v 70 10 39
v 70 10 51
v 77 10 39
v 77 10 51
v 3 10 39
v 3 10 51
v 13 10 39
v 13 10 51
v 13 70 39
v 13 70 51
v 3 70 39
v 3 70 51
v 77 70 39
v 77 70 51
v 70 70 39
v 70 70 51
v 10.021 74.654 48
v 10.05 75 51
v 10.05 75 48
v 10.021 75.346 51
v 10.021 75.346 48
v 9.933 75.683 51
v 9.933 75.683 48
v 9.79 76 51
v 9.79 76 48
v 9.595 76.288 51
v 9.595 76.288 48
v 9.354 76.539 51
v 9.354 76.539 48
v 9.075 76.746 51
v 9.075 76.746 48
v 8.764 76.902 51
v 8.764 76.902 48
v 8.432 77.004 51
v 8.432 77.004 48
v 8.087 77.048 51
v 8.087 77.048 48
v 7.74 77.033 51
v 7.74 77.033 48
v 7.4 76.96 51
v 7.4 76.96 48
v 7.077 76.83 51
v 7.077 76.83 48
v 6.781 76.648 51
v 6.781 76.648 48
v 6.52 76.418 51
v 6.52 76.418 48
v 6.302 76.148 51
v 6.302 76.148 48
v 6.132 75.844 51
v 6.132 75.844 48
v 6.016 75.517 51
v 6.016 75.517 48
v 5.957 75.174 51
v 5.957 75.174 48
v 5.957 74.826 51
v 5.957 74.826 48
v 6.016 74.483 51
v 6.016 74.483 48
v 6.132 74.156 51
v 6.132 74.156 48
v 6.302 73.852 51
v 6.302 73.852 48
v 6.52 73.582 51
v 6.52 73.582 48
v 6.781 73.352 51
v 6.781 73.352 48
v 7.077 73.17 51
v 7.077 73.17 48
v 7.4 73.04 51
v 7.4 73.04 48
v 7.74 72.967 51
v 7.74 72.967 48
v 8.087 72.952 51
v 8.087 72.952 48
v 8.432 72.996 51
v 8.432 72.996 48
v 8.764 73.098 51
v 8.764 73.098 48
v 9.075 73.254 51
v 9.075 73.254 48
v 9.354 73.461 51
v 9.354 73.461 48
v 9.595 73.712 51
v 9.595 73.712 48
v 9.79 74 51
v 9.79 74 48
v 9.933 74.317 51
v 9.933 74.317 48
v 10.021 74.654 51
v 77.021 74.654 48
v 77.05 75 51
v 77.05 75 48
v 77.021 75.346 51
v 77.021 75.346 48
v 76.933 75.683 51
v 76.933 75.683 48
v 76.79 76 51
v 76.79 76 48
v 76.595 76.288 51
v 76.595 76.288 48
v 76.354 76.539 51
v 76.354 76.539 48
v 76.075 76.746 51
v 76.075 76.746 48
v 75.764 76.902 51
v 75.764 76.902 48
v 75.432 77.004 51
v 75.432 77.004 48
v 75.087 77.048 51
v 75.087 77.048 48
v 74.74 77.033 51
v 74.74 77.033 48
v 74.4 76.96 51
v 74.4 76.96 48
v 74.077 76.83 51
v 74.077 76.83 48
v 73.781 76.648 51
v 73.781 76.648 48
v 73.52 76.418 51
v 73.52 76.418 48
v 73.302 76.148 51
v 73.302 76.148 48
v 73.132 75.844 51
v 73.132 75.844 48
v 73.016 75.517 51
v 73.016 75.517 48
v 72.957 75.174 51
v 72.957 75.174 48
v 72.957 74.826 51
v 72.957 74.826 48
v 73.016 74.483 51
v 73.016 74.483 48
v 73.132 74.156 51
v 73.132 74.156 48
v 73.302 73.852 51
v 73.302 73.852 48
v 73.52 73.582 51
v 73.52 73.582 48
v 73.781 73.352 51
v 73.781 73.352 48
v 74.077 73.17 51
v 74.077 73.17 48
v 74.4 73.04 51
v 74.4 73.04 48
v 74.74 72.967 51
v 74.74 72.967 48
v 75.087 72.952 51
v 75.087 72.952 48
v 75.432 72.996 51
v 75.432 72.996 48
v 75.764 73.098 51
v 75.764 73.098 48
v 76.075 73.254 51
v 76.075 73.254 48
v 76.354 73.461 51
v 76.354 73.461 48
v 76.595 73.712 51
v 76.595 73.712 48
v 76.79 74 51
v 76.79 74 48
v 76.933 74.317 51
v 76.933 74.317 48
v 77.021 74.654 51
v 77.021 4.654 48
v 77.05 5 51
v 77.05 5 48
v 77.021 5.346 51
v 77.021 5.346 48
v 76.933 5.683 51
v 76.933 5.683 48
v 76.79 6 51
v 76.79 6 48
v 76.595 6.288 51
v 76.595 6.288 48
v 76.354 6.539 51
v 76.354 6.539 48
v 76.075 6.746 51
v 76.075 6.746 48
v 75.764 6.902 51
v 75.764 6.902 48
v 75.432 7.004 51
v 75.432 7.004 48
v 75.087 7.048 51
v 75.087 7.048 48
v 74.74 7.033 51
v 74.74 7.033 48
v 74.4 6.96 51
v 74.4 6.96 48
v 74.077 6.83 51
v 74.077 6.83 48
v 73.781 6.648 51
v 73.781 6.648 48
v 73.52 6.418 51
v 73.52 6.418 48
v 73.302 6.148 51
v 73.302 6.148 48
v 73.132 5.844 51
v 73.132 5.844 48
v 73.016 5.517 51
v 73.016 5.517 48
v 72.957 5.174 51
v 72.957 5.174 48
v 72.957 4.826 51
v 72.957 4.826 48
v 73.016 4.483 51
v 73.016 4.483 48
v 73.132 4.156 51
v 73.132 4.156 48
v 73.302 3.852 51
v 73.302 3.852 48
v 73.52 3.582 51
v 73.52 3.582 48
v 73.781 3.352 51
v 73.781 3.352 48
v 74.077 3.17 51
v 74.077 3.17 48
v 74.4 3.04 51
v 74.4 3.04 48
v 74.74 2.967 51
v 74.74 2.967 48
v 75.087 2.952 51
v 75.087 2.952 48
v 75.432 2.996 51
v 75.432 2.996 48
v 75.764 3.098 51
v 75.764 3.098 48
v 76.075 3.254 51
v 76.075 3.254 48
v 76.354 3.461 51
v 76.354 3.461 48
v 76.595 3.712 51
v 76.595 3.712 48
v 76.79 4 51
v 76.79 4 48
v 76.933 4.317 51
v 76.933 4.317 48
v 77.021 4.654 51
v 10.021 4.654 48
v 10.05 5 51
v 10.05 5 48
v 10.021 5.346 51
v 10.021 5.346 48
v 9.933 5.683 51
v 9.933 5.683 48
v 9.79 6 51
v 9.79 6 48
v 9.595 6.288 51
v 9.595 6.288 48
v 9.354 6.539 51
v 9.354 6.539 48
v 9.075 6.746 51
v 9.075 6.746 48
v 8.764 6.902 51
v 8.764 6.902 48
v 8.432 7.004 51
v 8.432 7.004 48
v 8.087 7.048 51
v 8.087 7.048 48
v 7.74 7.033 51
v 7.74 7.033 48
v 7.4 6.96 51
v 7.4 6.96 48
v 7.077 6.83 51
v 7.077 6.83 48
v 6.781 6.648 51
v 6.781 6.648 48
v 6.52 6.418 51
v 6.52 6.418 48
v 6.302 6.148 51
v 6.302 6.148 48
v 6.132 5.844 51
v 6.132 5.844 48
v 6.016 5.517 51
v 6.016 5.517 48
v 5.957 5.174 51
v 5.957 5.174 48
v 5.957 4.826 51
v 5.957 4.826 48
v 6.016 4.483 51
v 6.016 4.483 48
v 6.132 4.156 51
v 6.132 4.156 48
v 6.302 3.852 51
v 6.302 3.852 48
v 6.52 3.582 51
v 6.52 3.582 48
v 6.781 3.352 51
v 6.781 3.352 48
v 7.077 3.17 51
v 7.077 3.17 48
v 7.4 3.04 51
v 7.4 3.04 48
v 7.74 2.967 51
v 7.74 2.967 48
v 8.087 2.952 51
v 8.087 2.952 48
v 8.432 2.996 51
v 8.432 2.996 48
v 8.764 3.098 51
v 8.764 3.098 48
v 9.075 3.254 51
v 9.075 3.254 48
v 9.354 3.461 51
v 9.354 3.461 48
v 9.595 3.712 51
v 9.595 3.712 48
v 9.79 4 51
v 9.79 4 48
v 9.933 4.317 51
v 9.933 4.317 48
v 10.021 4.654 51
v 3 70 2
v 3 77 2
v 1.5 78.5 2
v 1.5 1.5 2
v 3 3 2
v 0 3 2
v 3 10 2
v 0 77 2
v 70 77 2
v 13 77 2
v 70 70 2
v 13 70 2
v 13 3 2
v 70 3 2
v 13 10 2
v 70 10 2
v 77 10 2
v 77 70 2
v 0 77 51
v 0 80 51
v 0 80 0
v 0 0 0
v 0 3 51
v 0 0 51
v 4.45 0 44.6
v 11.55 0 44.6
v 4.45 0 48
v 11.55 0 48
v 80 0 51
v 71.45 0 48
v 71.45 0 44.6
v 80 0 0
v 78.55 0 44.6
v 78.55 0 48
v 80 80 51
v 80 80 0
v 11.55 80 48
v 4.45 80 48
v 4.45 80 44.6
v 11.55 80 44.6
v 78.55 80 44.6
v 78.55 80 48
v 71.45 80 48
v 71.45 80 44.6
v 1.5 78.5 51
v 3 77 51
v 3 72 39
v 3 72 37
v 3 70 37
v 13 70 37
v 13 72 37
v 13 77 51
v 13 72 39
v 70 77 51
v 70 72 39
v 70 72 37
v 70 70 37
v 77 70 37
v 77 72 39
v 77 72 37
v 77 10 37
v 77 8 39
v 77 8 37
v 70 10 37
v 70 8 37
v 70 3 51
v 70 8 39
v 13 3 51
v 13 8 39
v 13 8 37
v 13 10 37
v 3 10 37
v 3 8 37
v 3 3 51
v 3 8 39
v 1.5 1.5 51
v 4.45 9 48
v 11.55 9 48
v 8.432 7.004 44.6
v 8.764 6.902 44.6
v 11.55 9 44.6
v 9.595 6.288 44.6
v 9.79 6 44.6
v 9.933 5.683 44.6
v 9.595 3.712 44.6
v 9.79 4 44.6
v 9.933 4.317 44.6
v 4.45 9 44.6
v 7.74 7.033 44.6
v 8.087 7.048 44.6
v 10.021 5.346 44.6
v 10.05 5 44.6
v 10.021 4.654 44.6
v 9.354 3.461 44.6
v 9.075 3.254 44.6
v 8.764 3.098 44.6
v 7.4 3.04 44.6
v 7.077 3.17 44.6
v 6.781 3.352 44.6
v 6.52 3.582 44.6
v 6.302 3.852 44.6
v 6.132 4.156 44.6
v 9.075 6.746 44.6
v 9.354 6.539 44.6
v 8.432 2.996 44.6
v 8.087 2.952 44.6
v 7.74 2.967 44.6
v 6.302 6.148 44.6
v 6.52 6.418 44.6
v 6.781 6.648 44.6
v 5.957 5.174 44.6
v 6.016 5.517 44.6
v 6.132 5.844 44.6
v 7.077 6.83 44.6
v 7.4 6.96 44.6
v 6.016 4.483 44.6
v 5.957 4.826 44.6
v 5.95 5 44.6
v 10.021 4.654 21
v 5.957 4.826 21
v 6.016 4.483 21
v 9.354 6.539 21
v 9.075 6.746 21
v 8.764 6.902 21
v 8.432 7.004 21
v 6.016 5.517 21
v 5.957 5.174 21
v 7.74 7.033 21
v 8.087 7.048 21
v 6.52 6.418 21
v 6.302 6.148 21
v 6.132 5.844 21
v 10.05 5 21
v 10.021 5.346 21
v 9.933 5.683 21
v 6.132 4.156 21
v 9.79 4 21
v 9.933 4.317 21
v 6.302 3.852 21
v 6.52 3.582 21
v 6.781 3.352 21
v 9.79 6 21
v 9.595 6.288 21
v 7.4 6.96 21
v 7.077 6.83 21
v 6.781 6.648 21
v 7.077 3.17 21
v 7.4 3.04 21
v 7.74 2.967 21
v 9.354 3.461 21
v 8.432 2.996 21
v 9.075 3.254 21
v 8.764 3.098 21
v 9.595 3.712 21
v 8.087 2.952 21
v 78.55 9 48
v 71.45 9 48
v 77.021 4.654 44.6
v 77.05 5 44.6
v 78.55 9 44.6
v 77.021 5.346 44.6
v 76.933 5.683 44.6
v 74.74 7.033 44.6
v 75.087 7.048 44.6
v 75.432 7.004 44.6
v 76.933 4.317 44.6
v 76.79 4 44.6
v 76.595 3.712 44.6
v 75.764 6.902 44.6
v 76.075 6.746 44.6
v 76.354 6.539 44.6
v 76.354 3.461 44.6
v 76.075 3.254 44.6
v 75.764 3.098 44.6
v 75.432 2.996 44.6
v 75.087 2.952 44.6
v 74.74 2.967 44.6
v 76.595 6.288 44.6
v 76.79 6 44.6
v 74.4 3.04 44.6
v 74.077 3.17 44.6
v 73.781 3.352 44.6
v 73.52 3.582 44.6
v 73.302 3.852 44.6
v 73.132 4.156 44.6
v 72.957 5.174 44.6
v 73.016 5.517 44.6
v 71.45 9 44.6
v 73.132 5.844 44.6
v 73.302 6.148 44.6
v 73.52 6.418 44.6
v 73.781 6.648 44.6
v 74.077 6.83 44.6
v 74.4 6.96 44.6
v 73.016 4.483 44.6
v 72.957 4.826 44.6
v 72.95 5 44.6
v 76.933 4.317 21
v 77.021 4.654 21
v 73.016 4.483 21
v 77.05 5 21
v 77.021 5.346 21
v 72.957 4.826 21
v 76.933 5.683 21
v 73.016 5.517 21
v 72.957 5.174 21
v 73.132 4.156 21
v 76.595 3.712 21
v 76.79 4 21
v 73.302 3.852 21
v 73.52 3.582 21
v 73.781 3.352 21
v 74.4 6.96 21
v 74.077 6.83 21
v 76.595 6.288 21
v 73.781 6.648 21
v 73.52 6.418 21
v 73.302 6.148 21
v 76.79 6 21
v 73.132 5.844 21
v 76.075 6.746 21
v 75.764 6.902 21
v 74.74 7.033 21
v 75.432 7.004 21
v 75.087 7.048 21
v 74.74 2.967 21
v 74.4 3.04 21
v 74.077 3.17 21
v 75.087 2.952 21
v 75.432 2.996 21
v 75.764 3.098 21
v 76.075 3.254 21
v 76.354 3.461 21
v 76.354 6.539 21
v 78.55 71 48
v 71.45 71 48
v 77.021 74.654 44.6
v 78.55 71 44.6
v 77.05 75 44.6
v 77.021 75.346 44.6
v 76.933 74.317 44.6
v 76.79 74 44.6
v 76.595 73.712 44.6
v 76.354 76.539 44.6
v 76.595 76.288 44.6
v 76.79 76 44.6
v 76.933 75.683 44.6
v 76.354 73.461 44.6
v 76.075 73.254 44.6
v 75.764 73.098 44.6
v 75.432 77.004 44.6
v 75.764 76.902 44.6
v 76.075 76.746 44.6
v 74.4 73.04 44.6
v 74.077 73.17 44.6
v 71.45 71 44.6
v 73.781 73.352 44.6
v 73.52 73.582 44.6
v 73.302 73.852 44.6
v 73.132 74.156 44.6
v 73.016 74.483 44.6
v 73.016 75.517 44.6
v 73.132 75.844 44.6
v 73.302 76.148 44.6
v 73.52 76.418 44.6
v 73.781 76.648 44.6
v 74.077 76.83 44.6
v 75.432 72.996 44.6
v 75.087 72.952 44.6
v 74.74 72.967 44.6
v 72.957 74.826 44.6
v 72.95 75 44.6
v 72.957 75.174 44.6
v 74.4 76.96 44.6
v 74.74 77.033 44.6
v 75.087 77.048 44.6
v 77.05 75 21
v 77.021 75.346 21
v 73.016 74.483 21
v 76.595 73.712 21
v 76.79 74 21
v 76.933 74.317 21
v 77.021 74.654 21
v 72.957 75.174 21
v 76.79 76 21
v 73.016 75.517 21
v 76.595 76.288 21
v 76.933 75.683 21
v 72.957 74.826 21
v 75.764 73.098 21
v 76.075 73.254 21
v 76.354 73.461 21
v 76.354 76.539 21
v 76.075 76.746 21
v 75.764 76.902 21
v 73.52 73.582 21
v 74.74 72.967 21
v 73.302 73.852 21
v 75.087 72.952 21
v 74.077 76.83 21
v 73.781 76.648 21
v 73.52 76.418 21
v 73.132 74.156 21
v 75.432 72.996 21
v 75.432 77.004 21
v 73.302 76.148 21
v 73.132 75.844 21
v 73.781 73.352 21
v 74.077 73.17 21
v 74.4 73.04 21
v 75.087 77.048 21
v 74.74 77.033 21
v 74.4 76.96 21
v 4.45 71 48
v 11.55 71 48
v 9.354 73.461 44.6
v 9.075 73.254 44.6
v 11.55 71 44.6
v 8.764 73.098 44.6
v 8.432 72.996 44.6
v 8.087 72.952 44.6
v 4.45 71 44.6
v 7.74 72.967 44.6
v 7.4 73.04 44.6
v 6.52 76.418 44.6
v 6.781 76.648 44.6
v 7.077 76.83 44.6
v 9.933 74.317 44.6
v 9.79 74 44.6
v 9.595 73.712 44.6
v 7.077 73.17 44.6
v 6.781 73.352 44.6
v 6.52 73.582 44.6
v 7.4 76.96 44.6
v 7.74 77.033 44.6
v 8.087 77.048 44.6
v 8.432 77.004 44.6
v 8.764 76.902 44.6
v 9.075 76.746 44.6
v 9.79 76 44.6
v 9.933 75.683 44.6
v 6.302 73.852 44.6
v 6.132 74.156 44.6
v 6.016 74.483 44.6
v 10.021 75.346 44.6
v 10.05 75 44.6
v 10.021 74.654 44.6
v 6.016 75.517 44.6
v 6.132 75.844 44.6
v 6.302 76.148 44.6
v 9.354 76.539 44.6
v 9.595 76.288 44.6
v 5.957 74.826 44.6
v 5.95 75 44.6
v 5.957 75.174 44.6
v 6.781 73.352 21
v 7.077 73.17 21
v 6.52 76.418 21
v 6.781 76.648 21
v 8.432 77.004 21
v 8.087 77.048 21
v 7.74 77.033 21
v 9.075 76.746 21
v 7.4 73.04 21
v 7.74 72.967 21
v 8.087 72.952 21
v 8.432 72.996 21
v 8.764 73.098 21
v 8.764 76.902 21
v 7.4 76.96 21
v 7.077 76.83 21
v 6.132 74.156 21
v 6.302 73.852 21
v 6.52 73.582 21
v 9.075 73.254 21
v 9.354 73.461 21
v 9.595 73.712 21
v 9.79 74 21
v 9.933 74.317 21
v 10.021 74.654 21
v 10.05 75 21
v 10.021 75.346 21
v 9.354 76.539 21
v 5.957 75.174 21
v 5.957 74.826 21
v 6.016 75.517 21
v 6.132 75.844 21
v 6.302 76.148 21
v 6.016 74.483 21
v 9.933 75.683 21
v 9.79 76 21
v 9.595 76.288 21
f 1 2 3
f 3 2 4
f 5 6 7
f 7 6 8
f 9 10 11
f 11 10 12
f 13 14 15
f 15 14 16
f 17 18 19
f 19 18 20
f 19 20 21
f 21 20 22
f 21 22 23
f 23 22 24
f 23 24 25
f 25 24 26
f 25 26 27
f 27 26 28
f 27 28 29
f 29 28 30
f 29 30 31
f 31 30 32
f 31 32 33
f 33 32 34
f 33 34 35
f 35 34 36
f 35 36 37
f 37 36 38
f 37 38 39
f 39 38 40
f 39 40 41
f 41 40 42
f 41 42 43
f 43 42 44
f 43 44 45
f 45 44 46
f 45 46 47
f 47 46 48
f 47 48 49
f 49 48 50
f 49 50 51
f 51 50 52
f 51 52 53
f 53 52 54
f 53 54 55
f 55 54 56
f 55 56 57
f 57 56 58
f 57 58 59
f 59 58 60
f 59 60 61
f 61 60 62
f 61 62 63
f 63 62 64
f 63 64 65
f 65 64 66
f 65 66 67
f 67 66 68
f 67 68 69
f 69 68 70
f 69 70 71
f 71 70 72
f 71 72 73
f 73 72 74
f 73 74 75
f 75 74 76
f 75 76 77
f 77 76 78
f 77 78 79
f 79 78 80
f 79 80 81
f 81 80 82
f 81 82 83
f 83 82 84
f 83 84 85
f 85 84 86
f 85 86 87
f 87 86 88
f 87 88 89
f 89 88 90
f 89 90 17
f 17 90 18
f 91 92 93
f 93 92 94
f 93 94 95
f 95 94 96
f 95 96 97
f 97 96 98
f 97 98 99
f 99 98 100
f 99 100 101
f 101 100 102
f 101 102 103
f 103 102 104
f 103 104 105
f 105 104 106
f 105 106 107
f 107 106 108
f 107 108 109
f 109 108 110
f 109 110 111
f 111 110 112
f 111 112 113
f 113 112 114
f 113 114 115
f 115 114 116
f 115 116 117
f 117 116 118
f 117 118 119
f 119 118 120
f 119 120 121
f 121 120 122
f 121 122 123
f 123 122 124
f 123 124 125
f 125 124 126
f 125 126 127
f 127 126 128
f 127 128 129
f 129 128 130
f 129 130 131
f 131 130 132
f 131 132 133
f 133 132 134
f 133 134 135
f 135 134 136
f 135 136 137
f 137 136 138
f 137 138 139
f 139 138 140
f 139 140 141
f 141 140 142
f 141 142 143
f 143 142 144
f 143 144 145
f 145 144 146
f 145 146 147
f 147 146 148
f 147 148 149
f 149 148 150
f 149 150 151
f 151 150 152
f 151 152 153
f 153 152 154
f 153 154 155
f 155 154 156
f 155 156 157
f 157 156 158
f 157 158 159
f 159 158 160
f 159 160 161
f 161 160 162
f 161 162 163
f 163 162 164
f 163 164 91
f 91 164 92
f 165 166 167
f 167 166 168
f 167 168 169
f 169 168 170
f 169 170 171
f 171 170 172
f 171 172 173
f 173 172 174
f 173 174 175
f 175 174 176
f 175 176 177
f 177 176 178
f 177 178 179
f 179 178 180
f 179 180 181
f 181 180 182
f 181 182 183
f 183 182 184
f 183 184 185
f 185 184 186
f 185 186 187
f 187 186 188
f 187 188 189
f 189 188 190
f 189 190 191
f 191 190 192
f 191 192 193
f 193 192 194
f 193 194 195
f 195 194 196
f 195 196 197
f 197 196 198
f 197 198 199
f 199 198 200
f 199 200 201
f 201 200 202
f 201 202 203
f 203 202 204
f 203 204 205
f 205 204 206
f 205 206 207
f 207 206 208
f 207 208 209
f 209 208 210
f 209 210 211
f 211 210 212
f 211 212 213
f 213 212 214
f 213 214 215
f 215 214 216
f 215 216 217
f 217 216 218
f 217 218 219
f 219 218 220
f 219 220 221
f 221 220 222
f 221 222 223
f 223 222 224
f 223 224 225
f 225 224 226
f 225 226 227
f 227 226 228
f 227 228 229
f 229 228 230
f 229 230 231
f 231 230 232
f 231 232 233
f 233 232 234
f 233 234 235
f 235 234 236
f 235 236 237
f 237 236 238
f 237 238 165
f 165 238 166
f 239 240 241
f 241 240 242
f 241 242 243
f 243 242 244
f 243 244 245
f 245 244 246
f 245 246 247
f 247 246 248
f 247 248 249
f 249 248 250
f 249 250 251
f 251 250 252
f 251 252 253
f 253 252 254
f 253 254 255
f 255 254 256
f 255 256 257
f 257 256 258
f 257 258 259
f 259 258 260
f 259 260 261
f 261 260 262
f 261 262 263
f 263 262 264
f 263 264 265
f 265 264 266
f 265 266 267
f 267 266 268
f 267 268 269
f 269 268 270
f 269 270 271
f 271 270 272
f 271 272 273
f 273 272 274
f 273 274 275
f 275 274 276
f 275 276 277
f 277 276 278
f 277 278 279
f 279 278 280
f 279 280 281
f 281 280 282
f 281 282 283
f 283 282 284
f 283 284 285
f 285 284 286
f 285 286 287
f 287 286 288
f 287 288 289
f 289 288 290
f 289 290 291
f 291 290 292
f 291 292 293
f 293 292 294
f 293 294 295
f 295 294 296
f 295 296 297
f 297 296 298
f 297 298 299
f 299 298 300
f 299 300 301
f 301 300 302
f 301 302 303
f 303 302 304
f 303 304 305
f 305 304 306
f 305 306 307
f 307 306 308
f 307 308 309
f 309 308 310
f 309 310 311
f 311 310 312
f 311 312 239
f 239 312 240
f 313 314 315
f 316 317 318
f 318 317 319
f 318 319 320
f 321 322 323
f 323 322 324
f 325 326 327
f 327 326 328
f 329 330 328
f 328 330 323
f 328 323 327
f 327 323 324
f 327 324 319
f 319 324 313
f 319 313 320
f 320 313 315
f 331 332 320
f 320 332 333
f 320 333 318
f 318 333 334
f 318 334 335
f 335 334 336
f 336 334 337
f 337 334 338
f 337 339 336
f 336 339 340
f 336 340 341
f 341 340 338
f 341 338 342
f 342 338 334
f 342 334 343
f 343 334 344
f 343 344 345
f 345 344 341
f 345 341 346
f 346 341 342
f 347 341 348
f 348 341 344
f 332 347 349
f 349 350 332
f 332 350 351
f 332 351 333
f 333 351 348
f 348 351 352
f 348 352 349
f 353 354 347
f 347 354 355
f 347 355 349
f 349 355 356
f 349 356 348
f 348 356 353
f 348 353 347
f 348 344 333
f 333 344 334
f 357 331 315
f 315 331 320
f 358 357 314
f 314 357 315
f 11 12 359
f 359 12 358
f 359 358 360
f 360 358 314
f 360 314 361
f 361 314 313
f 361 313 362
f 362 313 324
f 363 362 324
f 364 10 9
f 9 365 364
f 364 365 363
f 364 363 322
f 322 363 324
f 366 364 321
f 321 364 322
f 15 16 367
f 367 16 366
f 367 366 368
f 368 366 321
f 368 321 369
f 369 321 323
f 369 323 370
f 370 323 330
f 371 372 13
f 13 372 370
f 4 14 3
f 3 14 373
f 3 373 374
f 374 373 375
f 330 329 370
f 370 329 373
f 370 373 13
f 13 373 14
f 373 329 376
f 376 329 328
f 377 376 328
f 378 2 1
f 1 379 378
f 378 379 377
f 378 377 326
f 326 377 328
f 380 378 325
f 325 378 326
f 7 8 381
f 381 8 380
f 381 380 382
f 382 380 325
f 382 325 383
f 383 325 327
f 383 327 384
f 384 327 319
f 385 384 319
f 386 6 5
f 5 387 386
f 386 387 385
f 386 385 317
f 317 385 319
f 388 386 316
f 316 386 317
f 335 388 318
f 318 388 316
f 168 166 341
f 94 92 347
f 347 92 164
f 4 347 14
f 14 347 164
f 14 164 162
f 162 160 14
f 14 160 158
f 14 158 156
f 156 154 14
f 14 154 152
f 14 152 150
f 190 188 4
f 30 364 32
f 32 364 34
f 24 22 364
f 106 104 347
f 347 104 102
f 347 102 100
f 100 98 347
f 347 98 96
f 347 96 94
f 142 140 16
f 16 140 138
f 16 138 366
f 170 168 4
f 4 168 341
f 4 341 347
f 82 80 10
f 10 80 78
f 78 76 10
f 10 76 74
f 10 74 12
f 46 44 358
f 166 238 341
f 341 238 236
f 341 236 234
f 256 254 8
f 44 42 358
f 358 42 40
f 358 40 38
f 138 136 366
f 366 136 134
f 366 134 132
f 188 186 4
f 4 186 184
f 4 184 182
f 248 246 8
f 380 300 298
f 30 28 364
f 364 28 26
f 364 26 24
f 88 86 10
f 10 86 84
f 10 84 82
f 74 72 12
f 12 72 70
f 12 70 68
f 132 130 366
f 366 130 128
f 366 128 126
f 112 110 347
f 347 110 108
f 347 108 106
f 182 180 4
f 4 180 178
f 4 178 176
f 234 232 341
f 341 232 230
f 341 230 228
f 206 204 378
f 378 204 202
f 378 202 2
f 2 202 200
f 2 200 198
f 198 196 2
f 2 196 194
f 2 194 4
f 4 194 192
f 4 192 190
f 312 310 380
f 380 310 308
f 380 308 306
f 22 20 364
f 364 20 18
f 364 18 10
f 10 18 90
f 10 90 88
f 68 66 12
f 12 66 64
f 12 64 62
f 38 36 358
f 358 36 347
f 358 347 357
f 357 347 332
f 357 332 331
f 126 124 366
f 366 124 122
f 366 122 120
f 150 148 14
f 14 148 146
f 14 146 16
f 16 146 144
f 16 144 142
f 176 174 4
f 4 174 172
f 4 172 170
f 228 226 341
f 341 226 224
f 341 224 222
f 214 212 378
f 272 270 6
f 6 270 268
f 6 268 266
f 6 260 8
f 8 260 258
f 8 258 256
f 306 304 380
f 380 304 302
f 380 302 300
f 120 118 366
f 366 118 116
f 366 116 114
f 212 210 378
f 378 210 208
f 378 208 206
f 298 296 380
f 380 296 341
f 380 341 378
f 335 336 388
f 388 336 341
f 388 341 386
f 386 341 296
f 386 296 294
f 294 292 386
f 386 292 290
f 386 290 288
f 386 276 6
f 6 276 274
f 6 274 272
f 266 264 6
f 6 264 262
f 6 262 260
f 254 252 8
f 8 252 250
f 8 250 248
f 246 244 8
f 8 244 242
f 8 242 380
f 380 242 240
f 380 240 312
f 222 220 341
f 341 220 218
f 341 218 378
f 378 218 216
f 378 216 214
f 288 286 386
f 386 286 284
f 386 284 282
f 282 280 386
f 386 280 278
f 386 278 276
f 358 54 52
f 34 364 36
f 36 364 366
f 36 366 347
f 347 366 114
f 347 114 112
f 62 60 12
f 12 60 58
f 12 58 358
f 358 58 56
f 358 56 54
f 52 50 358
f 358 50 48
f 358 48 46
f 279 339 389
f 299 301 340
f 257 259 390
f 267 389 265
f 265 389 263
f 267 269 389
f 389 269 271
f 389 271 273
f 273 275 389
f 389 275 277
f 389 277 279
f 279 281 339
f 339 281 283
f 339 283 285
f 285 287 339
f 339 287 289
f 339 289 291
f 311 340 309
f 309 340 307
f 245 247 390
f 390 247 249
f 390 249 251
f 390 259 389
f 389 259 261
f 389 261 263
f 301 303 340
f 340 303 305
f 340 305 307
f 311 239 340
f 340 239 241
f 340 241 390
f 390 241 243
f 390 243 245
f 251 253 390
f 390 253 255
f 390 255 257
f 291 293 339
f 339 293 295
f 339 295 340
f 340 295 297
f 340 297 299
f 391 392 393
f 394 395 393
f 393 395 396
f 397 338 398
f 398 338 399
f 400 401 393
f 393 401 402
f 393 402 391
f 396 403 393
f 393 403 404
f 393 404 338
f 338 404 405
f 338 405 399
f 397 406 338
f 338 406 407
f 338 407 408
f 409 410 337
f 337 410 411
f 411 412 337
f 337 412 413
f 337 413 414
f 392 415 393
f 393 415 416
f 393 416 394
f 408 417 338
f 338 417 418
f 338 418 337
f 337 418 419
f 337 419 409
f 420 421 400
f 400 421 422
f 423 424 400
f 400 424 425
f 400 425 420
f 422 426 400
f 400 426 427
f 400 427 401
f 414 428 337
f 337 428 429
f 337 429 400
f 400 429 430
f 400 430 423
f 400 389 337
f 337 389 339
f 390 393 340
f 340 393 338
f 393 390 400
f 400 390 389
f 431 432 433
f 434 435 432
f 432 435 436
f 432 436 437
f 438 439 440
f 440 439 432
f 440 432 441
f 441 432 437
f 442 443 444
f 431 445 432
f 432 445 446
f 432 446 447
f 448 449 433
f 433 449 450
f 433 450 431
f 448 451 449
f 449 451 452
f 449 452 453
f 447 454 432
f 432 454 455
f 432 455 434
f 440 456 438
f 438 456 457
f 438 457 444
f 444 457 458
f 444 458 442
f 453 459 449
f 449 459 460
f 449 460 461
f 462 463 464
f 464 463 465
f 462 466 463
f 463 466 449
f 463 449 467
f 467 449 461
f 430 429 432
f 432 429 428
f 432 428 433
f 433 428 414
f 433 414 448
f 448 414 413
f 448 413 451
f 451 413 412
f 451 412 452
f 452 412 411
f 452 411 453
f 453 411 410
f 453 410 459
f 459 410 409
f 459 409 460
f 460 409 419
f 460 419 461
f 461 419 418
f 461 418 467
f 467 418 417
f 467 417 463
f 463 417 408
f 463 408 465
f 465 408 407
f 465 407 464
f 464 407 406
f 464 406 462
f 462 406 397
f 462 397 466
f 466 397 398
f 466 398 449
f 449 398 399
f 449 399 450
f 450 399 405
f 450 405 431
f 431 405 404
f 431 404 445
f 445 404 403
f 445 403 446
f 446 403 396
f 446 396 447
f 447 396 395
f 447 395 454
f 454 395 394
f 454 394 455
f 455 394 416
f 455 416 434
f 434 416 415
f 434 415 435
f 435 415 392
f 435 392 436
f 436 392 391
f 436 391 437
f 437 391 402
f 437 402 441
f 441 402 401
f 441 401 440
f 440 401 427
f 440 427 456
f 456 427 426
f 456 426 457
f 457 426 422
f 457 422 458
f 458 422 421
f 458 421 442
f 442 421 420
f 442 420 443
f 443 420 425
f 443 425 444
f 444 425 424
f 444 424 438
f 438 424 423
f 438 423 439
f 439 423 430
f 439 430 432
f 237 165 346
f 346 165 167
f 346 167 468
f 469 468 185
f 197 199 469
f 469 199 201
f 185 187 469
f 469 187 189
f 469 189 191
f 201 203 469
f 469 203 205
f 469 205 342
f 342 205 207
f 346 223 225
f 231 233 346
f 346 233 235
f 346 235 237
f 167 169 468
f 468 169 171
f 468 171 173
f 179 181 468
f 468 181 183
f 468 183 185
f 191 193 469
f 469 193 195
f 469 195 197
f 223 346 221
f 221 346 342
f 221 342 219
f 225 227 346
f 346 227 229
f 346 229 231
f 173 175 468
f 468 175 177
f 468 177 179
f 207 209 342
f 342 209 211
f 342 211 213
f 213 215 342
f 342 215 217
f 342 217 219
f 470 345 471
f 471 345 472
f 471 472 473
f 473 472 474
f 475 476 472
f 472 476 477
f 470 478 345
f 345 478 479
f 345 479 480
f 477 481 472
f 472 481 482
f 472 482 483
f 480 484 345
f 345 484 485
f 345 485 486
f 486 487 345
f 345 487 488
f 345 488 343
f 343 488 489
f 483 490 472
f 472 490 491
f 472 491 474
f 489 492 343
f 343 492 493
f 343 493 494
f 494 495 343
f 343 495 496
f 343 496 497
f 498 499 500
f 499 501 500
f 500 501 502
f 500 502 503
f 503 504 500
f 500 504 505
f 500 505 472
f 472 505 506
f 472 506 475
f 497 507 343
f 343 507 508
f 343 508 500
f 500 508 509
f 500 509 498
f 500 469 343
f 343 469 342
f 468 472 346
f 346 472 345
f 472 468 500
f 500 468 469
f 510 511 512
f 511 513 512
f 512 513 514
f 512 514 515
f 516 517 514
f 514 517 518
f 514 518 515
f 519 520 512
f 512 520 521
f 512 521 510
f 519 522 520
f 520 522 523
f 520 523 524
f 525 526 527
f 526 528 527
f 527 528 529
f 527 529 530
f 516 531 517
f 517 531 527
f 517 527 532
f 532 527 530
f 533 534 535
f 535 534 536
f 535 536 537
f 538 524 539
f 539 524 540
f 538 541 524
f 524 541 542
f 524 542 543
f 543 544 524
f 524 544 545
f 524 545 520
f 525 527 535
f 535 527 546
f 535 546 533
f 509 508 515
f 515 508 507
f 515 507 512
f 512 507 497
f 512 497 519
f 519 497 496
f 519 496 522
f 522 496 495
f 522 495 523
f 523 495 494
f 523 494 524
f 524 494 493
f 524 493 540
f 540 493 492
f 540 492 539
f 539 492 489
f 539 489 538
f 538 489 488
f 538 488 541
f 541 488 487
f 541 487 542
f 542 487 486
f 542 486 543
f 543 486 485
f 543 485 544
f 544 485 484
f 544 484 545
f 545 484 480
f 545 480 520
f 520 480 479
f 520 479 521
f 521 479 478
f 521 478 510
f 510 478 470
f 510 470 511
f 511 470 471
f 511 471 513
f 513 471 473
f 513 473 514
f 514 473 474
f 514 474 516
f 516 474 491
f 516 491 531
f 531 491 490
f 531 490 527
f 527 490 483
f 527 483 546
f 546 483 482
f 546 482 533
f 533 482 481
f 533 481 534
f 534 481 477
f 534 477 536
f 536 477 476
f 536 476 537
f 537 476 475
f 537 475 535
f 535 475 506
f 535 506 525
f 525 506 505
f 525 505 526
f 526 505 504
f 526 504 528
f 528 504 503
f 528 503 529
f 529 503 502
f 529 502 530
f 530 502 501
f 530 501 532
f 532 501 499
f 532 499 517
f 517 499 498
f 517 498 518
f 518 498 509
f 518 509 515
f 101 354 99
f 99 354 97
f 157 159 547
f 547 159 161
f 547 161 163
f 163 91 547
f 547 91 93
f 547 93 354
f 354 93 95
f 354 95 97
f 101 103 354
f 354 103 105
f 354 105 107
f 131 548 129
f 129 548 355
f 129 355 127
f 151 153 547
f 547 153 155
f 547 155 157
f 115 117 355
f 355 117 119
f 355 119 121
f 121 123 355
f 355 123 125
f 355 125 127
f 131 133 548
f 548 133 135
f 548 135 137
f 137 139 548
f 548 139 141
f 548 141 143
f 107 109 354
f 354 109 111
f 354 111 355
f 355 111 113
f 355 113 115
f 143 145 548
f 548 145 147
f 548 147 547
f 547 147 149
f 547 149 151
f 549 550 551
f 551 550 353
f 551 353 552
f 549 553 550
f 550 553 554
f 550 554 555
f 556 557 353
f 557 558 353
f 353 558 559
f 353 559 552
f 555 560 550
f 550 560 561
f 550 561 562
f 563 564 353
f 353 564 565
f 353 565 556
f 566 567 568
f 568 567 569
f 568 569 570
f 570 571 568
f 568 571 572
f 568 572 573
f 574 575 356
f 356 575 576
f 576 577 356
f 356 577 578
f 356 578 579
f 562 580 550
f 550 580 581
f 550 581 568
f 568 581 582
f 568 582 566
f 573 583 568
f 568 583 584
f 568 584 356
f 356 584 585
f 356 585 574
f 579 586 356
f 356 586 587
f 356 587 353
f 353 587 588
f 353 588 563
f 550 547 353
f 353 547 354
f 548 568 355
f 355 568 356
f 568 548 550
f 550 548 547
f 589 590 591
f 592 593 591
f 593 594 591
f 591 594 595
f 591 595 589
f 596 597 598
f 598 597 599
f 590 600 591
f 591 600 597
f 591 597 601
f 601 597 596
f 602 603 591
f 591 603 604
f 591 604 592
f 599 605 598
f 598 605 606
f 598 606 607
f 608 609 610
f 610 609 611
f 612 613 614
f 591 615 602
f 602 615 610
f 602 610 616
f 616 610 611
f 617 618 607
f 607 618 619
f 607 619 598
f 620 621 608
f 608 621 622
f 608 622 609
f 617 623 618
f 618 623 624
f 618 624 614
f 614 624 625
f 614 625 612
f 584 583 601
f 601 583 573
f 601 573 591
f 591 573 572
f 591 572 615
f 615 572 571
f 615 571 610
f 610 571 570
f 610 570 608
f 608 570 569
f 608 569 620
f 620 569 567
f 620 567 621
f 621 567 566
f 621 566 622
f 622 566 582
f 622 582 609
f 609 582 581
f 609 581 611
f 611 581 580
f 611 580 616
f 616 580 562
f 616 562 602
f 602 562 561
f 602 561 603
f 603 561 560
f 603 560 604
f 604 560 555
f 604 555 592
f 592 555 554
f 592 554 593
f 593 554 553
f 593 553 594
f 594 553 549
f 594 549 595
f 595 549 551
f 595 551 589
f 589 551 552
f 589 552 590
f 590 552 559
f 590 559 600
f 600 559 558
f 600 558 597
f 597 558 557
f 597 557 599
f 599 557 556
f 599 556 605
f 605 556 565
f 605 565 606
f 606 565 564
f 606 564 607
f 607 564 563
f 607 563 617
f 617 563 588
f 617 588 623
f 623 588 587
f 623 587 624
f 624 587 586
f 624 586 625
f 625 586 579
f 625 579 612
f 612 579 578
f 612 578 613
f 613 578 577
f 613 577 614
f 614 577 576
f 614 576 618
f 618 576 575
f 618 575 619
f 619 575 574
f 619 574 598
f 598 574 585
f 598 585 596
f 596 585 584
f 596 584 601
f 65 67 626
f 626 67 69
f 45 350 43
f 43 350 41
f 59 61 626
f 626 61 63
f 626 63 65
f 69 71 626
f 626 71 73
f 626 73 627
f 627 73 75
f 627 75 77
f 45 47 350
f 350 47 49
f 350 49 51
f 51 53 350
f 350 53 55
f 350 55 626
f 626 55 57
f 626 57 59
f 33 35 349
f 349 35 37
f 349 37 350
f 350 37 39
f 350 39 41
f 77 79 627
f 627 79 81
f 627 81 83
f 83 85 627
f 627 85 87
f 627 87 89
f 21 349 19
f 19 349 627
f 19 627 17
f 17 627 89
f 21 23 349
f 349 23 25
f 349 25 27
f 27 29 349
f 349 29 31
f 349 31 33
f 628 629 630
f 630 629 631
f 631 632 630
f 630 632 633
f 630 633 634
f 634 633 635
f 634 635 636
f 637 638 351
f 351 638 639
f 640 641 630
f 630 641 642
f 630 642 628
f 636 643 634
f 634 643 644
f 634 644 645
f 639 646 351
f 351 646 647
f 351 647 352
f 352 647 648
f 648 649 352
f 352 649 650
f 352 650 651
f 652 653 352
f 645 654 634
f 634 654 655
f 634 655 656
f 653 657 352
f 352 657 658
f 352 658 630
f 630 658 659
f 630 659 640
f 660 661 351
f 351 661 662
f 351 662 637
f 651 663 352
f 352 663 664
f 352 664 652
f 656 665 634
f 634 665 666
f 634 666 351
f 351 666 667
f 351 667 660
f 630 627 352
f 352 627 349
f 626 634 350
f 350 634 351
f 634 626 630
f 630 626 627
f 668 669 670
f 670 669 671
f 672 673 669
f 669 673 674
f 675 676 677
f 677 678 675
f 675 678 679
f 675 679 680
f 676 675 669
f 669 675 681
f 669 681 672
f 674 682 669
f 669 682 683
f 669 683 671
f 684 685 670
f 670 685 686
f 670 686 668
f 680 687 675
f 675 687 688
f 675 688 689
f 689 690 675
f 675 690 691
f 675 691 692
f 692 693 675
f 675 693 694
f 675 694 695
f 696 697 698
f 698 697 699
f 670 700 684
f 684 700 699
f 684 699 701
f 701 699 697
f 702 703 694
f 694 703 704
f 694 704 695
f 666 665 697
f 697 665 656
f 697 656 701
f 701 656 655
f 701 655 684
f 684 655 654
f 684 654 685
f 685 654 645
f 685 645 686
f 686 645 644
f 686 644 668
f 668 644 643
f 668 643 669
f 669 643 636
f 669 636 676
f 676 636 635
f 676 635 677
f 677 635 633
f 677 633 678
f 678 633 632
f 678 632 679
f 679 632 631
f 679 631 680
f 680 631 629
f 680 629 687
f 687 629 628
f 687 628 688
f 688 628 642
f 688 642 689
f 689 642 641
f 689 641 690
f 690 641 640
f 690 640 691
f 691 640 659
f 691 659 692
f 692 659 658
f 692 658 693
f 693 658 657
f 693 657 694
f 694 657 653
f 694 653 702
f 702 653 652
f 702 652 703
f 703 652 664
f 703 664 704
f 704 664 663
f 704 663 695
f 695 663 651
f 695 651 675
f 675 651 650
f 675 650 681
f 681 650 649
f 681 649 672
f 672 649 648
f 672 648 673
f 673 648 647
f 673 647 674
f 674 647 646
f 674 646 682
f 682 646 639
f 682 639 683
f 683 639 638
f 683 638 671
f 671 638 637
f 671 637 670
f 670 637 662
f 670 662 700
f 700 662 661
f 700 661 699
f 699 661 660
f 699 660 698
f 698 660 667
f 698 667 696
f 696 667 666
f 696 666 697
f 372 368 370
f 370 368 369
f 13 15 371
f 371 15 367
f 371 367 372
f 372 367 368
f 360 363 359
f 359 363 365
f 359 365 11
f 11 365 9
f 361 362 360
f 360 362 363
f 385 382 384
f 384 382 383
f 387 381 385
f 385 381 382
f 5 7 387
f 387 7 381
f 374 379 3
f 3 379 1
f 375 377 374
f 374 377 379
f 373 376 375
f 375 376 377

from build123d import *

# Parameters (mm, degrees)
ESQUISSE3_W             = 80
ESQUISSE3_H             = 80
BOSS_EXTRU_1_DEPTH      = 2
BOSS_EXTRU_2_DEPTH      = 49
ESQUISSE7_R             = 2.05
ENL_V_MAT_EXTRU_1_DEPTH = 30
ESQUISSE8_W             = 7.1
ESQUISSE8_H             = 3.4
ENL_V_MAT_EXTRU_2_DEPTH = 9
ESQUISSE9_W             = 7.1
ESQUISSE9_H             = 3.4
ENL_V_MAT_EXTRU_3_DEPTH = 9
ESQUISSE10_W            = 2
ESQUISSE10_H            = 2
ENL_V_MAT_EXTRU_4_DEPTH = 74


with BuildPart() as part:
    # Esquisse3 → Boss.-Extru.1 (new body)
    with BuildSketch(Plane.XY):
        with Locations((40, 40)):
            Rectangle(ESQUISSE3_W, ESQUISSE3_H)
    extrude(amount=BOSS_EXTRU_1_DEPTH)

    # Esquisse6 → Boss.-Extru.2 (add)
    with BuildSketch(Plane.XY.offset(2)):
        Polygon((0, 0), (80, 0), (80, 80), (0, 80), (0, 77), (1.5, 78.5), (3, 77), (3, 70), (13, 70), (13, 77), (70, 77), (70, 70), (77, 70), (77, 10), (70, 10), (70, 3), (13, 3), (13, 10), (3, 10), (3, 3), (1.5, 1.5), (0, 3), align=None)
    extrude(amount=BOSS_EXTRU_2_DEPTH)

    # Esquisse7 → Enlèv. mat.-Extru.1 (cut)
    with BuildSketch(Plane.XY.offset(51)):
        with Locations((8, 75)):
            Circle(ESQUISSE7_R)
        with Locations((8, 5)):
            Circle(ESQUISSE7_R)
        with Locations((75, 5)):
            Circle(ESQUISSE7_R)
        with Locations((75, 75)):
            Circle(ESQUISSE7_R)
    extrude(amount=-ENL_V_MAT_EXTRU_1_DEPTH, mode=Mode.SUBTRACT)

    # Esquisse8 → Enlèv. mat.-Extru.2 (cut)
    with BuildSketch(Plane.XZ):
        with Locations((8, 46.3)):
            Rectangle(ESQUISSE8_W, ESQUISSE8_H)
        with Locations((75, 46.3)):
            Rectangle(ESQUISSE8_W, ESQUISSE8_H)
    extrude(amount=-ENL_V_MAT_EXTRU_2_DEPTH, mode=Mode.SUBTRACT)

    # Esquisse9 → Enlèv. mat.-Extru.3 (cut)
    with BuildSketch(Plane(origin=(0, 80, 0), x_dir=(1, 0, 0), z_dir=(0, 1, 0))):
        with Locations((75, -46.3)):
            Rectangle(ESQUISSE9_W, ESQUISSE9_H)
        with Locations((8, -46.3)):
            Rectangle(ESQUISSE9_W, ESQUISSE9_H)
    extrude(amount=-ENL_V_MAT_EXTRU_3_DEPTH, mode=Mode.SUBTRACT)

    # Esquisse10 → Enlèv. mat.-Extru.4 (cut)
    with BuildSketch(Plane.ZY.offset(-3)):
        with Locations((38, 71)):
            Rectangle(ESQUISSE10_W, ESQUISSE10_H)
        with Locations((38, 9)):
            Rectangle(ESQUISSE10_W, ESQUISSE10_H)
    extrude(amount=-ENL_V_MAT_EXTRU_4_DEPTH, mode=Mode.SUBTRACT)


solid = part.part
